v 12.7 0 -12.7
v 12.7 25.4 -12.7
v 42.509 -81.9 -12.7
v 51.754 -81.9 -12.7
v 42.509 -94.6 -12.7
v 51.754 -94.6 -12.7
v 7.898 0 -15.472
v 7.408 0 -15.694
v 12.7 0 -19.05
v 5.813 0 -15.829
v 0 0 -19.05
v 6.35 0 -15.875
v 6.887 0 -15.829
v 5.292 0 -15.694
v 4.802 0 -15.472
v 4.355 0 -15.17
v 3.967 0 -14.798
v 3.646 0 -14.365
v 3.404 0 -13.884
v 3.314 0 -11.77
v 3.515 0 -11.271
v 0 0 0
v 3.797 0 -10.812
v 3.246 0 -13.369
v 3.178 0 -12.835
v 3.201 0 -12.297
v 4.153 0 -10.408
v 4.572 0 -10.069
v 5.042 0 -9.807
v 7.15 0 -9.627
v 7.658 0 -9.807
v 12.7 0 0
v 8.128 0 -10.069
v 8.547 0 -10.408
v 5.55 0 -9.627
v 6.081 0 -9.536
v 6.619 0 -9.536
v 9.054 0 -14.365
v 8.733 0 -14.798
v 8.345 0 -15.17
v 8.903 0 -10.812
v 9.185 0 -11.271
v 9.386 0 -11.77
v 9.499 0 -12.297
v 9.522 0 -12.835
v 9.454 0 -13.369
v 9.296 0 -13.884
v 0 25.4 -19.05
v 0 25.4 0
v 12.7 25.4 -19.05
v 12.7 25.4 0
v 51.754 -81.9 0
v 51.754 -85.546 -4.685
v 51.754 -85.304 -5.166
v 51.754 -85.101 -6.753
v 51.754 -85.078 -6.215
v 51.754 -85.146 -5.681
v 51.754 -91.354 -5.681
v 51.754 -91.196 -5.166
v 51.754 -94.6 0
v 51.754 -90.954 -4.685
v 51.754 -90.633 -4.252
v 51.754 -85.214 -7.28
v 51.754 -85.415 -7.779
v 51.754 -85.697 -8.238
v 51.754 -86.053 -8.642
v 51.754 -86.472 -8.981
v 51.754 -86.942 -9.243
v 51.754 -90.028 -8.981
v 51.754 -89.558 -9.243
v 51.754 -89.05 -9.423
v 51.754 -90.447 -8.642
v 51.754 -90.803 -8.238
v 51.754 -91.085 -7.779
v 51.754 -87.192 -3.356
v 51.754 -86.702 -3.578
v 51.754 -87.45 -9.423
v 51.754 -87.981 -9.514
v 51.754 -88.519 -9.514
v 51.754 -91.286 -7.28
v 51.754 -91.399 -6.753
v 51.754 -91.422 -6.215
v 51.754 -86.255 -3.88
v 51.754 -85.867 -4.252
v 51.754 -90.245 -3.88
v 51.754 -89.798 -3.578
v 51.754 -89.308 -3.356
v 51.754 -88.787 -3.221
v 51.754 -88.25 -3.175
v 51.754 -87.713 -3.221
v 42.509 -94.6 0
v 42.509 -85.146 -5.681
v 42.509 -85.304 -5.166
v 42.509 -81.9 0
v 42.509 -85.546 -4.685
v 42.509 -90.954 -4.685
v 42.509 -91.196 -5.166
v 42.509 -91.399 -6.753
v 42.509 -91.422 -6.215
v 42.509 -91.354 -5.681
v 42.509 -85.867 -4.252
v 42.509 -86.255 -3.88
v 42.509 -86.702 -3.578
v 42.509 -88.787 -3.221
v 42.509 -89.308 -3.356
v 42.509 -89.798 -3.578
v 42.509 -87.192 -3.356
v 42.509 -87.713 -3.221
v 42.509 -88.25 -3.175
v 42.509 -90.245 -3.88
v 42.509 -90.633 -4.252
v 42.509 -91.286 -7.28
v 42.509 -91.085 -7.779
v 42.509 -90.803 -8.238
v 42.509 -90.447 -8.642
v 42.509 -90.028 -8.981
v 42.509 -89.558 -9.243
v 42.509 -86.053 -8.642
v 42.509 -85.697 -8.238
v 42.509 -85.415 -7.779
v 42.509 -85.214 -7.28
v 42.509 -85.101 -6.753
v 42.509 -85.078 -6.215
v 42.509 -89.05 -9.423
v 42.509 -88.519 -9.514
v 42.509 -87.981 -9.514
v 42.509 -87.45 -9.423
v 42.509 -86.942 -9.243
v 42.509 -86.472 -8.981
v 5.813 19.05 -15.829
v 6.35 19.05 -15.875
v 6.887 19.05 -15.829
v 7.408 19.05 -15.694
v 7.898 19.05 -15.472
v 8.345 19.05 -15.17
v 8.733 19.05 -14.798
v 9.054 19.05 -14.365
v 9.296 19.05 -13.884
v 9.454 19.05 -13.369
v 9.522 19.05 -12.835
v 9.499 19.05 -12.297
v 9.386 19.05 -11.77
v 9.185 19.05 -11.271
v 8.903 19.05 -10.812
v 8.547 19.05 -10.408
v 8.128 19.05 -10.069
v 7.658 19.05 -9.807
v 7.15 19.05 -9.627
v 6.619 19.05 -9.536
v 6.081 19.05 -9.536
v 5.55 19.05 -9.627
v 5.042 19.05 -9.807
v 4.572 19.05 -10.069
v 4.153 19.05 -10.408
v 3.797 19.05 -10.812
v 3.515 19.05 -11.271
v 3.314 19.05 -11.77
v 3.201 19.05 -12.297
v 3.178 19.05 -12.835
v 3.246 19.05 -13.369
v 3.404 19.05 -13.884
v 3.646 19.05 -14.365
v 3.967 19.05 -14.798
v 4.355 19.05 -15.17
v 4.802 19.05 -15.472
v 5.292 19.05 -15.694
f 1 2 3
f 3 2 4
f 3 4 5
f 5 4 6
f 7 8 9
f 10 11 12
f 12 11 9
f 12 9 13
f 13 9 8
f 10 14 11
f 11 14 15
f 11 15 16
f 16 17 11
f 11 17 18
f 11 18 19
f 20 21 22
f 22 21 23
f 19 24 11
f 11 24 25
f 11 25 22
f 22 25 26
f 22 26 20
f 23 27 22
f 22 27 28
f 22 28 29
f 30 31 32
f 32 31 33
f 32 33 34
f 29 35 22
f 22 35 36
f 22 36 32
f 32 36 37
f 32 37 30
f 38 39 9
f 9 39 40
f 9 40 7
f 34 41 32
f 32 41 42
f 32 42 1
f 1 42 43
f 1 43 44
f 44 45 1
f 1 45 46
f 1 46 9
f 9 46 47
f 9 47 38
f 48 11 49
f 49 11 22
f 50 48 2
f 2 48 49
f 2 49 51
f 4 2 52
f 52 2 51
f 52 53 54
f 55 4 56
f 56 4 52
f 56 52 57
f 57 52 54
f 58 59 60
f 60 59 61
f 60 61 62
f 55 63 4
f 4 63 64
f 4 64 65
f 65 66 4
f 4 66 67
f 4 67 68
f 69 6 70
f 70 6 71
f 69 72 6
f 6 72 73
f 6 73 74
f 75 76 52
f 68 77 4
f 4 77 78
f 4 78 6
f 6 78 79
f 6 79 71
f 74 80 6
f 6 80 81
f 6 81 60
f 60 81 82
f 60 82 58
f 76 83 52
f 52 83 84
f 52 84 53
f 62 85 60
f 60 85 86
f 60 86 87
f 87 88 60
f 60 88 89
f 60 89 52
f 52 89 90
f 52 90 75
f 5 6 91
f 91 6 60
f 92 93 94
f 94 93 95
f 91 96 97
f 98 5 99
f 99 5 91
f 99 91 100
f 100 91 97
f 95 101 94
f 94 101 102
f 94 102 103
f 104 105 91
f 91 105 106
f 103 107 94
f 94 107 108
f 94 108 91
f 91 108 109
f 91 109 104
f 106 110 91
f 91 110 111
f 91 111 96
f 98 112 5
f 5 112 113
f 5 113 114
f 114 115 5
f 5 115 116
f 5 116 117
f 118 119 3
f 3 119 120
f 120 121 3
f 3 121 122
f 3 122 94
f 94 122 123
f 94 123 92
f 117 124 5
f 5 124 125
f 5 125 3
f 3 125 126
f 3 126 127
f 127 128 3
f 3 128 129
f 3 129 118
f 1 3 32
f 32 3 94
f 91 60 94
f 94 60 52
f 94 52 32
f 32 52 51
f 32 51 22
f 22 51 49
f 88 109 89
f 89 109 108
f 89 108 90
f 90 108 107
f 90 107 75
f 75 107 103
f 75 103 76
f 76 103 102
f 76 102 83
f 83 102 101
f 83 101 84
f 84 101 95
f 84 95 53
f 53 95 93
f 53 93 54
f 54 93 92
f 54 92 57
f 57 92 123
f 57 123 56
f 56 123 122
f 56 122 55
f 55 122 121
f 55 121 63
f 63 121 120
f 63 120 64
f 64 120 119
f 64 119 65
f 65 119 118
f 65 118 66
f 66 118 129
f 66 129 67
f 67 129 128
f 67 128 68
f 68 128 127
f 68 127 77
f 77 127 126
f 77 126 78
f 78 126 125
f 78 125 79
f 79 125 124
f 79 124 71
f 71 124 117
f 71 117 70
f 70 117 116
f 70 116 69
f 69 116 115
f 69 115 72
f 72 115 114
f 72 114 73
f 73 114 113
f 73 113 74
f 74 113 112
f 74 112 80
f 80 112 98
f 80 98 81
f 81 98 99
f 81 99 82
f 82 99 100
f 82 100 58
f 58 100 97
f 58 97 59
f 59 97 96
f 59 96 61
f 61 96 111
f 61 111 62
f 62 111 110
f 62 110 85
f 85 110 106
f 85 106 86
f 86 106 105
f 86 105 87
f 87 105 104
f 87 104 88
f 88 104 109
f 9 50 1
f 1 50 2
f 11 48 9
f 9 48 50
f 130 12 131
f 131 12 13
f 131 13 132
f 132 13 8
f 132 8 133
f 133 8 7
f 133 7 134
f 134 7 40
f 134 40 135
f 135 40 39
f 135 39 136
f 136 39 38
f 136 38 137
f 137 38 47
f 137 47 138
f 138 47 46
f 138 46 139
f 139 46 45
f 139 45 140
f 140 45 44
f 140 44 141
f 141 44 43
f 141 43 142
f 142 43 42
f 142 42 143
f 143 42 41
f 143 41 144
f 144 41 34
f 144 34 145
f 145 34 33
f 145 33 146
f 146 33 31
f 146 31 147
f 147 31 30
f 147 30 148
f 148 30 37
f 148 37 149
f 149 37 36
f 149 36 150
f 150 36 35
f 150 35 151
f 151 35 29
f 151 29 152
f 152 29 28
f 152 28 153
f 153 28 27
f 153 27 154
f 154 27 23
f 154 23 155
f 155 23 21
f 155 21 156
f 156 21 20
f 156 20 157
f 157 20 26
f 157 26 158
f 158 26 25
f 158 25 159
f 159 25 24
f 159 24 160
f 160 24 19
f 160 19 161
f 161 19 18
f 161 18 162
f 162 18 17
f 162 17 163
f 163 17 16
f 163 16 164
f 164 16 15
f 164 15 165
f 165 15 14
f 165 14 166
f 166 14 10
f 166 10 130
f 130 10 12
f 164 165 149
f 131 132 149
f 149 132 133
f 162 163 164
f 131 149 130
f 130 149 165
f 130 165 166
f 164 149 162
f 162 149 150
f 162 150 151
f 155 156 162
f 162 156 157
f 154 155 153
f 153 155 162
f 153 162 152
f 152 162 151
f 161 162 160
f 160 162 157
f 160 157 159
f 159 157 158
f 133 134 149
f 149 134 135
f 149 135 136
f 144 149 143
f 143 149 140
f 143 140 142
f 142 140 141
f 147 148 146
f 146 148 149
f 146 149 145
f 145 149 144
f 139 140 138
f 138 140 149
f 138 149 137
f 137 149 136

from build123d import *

# Parameters (mm, degrees)
BOSS_EXTRUDE1_DEPTH = 12.7
SKETCH2_R           = 3.175
CUT_EXTRUDE1_DEPTH  = 10.24484395
SKETCH5_W           = 12.7
SKETCH5_H           = 25.4
BOSS_EXTRUDE2_DEPTH = 6.35
SKETCH4_R           = 3.175
CUT_EXTRUDE2_DEPTH  = 19.05


with BuildPart() as part:
    # Sketch1 → Boss-Extrude1 (new body)
    with BuildSketch(Plane.XY):
        Polygon((0, 0), (0, 25.4), (12.7, 25.4), (51.754006137, -81.9), (51.754006137, -94.6), (42.509162186, -94.6), (42.509162186, -81.9), (12.7, 0), align=None)
    extrude(amount=-BOSS_EXTRUDE1_DEPTH)

    # Sketch2 → Cut-Extrude1 (cut, through all)
    with BuildSketch(Plane.ZY.offset(-42.509162186)):
        with Locations((-6.35, -88.25)):
            Circle(SKETCH2_R)
    extrude(amount=-CUT_EXTRUDE1_DEPTH, mode=Mode.SUBTRACT)

    # Sketch5 → Boss-Extrude2 (add)
    with BuildSketch(Plane.XY.offset(-12.7)):
        with Locations((6.35, 12.7)):
            Rectangle(SKETCH5_W, SKETCH5_H)
    extrude(amount=-BOSS_EXTRUDE2_DEPTH)

    # Sketch4 → Cut-Extrude2 (cut)
    with BuildSketch(Plane.XZ):
        with Locations((6.35, -12.7)):
            Circle(SKETCH4_R)
    extrude(amount=-CUT_EXTRUDE2_DEPTH, mode=Mode.SUBTRACT)


solid = part.part
